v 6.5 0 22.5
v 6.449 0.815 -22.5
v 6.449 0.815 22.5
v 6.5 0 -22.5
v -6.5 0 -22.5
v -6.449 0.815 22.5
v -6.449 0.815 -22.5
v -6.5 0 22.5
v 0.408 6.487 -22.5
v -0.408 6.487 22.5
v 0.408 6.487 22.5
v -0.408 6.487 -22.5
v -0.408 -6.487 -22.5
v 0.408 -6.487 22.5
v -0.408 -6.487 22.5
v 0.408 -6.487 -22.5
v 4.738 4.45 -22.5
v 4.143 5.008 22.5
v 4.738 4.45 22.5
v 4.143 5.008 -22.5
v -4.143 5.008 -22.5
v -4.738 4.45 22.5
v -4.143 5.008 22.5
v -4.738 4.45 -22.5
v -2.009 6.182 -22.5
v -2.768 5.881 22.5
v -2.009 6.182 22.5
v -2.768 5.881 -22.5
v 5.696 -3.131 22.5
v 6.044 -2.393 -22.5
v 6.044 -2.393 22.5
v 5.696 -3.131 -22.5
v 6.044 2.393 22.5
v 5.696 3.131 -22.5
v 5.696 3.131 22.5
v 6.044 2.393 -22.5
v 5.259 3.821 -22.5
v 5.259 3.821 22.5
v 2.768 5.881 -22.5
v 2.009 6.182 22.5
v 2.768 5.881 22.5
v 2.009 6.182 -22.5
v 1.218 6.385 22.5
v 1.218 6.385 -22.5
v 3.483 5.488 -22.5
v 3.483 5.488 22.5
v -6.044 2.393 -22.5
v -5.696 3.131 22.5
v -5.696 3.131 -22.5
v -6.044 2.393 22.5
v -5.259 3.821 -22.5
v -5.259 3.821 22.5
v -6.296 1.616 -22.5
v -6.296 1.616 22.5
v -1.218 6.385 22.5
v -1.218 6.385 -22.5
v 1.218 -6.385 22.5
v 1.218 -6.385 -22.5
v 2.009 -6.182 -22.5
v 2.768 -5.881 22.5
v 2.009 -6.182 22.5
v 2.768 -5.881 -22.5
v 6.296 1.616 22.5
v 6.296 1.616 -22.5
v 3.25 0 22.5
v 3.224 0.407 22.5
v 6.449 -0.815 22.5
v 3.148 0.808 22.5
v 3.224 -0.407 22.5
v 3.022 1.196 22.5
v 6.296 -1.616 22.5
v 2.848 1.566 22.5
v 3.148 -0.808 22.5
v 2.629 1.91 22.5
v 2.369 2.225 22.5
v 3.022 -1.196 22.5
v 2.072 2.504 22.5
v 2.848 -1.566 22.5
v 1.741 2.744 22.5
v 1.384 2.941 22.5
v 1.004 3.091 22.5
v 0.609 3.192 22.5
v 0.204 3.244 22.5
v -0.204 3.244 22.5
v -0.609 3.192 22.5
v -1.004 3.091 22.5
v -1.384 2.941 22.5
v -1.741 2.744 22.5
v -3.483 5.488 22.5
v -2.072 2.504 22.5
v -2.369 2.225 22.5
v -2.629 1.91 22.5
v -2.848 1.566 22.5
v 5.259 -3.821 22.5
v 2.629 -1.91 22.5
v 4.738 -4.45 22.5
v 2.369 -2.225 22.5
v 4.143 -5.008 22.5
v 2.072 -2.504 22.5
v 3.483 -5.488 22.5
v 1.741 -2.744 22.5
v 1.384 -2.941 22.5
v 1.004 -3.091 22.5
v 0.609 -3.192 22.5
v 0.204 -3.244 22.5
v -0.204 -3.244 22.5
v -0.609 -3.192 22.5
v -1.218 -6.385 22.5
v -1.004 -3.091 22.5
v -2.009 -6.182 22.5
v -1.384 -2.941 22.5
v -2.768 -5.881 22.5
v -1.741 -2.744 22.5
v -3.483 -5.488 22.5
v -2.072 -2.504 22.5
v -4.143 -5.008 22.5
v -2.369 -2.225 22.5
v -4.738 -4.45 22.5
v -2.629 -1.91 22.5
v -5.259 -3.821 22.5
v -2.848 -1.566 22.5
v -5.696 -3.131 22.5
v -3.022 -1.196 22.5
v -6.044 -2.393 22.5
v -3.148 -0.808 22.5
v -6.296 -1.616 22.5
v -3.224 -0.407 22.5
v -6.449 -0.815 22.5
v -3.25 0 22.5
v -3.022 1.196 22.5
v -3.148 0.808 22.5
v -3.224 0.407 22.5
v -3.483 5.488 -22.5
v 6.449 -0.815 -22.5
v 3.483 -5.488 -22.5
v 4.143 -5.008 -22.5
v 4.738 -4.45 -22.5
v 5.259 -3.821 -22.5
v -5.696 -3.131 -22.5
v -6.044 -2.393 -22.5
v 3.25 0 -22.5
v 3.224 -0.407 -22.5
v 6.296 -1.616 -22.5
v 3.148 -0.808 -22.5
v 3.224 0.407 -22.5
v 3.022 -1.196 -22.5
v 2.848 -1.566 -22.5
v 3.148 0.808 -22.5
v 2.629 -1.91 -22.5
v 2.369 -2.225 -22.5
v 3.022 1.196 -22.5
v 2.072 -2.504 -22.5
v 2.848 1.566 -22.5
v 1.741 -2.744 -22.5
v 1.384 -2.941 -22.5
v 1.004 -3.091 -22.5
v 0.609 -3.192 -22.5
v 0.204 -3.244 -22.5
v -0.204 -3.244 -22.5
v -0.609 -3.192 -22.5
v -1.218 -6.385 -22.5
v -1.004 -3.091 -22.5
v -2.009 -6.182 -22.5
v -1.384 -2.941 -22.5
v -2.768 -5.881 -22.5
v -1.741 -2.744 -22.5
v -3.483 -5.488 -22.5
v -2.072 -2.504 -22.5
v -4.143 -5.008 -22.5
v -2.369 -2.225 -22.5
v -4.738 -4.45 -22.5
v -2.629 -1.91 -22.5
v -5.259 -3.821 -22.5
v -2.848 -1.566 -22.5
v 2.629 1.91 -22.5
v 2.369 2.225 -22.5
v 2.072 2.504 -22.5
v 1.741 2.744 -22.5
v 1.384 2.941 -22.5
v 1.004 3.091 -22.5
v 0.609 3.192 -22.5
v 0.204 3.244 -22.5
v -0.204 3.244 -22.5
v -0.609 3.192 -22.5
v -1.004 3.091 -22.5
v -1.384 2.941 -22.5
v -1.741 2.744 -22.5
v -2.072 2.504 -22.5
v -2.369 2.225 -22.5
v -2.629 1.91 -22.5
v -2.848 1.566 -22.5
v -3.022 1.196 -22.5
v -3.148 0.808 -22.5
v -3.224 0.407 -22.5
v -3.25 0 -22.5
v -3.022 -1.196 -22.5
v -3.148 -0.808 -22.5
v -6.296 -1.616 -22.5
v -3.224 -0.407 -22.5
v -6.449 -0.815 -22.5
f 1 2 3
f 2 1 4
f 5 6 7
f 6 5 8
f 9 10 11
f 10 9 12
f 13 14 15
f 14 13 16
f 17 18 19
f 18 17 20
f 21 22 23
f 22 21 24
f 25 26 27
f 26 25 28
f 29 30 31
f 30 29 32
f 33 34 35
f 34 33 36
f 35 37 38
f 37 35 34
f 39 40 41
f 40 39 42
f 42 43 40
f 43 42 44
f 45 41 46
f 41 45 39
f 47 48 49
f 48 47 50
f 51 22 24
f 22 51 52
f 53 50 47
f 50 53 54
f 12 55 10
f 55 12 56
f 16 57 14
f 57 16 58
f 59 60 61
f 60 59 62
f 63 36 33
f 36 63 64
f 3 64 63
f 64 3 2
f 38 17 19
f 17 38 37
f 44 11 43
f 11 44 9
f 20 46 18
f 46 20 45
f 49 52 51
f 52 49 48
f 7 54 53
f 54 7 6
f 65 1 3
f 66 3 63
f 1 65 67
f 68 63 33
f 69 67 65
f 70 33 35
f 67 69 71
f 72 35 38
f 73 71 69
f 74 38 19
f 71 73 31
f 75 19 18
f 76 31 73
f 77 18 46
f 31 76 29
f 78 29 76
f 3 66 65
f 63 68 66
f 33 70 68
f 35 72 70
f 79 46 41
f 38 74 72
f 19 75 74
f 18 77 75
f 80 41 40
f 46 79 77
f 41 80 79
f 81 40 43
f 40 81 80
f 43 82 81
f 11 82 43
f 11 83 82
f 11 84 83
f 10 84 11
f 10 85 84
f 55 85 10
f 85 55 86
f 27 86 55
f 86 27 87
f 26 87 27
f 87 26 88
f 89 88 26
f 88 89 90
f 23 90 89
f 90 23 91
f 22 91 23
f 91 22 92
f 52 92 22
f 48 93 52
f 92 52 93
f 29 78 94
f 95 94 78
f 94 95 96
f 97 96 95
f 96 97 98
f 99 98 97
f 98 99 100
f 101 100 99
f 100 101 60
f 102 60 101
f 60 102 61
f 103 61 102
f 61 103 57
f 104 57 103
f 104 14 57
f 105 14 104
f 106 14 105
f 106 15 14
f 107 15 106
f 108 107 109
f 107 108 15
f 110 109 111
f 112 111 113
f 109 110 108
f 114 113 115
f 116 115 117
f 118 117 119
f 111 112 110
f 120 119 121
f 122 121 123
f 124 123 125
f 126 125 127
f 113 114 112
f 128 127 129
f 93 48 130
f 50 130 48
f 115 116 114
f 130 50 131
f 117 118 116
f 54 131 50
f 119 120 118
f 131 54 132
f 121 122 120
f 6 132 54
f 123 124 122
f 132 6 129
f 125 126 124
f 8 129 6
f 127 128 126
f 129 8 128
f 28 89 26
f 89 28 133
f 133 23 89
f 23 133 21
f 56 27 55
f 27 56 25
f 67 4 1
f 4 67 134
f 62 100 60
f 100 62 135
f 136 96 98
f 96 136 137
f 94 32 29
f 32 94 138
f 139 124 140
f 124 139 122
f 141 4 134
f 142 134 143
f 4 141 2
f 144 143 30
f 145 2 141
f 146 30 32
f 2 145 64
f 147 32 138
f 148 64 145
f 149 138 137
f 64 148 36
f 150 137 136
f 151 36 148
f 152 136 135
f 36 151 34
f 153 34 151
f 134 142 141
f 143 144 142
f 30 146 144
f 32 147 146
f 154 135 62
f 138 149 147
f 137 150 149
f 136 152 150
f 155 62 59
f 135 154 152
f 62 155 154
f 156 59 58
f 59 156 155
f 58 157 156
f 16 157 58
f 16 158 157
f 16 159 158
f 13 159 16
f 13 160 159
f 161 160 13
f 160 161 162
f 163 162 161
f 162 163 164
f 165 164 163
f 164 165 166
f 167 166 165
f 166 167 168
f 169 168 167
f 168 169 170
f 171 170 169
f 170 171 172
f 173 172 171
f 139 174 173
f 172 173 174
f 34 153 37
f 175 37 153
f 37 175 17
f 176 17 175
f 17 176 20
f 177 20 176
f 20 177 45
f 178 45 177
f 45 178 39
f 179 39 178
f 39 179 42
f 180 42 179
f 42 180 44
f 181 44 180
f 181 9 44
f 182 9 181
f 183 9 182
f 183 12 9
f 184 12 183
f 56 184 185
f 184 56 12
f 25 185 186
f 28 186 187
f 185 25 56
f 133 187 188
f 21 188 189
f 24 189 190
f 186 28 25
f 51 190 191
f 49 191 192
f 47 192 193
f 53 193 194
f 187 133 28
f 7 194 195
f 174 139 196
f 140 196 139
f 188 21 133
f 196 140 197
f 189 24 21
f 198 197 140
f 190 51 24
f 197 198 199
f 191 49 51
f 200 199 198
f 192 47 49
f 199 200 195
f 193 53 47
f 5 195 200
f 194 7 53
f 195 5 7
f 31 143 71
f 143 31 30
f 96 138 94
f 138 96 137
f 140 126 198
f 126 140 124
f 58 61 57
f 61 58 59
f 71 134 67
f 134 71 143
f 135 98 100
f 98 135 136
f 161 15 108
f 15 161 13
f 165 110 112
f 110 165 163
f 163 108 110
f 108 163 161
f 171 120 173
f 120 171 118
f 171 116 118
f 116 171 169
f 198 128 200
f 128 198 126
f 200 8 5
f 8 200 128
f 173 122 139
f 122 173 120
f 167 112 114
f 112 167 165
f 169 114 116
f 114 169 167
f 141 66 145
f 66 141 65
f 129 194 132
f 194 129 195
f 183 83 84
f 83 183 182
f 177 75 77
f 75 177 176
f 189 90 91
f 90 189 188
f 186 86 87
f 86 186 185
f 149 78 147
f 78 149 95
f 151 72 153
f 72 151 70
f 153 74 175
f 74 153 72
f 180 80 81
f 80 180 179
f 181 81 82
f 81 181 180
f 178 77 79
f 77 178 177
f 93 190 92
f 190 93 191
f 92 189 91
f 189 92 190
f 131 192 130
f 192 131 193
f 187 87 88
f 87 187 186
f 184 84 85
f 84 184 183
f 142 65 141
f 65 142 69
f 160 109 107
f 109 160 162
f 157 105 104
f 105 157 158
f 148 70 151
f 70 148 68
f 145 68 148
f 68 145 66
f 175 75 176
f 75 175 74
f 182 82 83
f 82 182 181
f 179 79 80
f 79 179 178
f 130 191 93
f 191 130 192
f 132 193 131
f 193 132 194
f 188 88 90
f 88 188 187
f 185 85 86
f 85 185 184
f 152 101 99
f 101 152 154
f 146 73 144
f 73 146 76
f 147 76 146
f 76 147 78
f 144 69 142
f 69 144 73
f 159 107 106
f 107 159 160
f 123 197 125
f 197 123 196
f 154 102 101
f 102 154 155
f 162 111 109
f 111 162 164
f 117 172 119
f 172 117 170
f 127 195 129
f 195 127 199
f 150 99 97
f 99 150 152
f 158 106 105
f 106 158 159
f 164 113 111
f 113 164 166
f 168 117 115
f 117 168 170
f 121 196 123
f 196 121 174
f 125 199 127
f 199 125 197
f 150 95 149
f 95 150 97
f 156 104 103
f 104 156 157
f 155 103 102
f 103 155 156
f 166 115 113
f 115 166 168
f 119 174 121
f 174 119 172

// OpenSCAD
$fn = 50;


difference() {
	union() {
		translate(v = [0, 0, -22.5000000000]) {
			cylinder(h = 45, r = 6.5000000000);
		}
	}
	union() {
		translate(v = [0, 0, -100.0000000000]) {
			cylinder(h = 200, r = 3.2500000000);
		}
	}
}
